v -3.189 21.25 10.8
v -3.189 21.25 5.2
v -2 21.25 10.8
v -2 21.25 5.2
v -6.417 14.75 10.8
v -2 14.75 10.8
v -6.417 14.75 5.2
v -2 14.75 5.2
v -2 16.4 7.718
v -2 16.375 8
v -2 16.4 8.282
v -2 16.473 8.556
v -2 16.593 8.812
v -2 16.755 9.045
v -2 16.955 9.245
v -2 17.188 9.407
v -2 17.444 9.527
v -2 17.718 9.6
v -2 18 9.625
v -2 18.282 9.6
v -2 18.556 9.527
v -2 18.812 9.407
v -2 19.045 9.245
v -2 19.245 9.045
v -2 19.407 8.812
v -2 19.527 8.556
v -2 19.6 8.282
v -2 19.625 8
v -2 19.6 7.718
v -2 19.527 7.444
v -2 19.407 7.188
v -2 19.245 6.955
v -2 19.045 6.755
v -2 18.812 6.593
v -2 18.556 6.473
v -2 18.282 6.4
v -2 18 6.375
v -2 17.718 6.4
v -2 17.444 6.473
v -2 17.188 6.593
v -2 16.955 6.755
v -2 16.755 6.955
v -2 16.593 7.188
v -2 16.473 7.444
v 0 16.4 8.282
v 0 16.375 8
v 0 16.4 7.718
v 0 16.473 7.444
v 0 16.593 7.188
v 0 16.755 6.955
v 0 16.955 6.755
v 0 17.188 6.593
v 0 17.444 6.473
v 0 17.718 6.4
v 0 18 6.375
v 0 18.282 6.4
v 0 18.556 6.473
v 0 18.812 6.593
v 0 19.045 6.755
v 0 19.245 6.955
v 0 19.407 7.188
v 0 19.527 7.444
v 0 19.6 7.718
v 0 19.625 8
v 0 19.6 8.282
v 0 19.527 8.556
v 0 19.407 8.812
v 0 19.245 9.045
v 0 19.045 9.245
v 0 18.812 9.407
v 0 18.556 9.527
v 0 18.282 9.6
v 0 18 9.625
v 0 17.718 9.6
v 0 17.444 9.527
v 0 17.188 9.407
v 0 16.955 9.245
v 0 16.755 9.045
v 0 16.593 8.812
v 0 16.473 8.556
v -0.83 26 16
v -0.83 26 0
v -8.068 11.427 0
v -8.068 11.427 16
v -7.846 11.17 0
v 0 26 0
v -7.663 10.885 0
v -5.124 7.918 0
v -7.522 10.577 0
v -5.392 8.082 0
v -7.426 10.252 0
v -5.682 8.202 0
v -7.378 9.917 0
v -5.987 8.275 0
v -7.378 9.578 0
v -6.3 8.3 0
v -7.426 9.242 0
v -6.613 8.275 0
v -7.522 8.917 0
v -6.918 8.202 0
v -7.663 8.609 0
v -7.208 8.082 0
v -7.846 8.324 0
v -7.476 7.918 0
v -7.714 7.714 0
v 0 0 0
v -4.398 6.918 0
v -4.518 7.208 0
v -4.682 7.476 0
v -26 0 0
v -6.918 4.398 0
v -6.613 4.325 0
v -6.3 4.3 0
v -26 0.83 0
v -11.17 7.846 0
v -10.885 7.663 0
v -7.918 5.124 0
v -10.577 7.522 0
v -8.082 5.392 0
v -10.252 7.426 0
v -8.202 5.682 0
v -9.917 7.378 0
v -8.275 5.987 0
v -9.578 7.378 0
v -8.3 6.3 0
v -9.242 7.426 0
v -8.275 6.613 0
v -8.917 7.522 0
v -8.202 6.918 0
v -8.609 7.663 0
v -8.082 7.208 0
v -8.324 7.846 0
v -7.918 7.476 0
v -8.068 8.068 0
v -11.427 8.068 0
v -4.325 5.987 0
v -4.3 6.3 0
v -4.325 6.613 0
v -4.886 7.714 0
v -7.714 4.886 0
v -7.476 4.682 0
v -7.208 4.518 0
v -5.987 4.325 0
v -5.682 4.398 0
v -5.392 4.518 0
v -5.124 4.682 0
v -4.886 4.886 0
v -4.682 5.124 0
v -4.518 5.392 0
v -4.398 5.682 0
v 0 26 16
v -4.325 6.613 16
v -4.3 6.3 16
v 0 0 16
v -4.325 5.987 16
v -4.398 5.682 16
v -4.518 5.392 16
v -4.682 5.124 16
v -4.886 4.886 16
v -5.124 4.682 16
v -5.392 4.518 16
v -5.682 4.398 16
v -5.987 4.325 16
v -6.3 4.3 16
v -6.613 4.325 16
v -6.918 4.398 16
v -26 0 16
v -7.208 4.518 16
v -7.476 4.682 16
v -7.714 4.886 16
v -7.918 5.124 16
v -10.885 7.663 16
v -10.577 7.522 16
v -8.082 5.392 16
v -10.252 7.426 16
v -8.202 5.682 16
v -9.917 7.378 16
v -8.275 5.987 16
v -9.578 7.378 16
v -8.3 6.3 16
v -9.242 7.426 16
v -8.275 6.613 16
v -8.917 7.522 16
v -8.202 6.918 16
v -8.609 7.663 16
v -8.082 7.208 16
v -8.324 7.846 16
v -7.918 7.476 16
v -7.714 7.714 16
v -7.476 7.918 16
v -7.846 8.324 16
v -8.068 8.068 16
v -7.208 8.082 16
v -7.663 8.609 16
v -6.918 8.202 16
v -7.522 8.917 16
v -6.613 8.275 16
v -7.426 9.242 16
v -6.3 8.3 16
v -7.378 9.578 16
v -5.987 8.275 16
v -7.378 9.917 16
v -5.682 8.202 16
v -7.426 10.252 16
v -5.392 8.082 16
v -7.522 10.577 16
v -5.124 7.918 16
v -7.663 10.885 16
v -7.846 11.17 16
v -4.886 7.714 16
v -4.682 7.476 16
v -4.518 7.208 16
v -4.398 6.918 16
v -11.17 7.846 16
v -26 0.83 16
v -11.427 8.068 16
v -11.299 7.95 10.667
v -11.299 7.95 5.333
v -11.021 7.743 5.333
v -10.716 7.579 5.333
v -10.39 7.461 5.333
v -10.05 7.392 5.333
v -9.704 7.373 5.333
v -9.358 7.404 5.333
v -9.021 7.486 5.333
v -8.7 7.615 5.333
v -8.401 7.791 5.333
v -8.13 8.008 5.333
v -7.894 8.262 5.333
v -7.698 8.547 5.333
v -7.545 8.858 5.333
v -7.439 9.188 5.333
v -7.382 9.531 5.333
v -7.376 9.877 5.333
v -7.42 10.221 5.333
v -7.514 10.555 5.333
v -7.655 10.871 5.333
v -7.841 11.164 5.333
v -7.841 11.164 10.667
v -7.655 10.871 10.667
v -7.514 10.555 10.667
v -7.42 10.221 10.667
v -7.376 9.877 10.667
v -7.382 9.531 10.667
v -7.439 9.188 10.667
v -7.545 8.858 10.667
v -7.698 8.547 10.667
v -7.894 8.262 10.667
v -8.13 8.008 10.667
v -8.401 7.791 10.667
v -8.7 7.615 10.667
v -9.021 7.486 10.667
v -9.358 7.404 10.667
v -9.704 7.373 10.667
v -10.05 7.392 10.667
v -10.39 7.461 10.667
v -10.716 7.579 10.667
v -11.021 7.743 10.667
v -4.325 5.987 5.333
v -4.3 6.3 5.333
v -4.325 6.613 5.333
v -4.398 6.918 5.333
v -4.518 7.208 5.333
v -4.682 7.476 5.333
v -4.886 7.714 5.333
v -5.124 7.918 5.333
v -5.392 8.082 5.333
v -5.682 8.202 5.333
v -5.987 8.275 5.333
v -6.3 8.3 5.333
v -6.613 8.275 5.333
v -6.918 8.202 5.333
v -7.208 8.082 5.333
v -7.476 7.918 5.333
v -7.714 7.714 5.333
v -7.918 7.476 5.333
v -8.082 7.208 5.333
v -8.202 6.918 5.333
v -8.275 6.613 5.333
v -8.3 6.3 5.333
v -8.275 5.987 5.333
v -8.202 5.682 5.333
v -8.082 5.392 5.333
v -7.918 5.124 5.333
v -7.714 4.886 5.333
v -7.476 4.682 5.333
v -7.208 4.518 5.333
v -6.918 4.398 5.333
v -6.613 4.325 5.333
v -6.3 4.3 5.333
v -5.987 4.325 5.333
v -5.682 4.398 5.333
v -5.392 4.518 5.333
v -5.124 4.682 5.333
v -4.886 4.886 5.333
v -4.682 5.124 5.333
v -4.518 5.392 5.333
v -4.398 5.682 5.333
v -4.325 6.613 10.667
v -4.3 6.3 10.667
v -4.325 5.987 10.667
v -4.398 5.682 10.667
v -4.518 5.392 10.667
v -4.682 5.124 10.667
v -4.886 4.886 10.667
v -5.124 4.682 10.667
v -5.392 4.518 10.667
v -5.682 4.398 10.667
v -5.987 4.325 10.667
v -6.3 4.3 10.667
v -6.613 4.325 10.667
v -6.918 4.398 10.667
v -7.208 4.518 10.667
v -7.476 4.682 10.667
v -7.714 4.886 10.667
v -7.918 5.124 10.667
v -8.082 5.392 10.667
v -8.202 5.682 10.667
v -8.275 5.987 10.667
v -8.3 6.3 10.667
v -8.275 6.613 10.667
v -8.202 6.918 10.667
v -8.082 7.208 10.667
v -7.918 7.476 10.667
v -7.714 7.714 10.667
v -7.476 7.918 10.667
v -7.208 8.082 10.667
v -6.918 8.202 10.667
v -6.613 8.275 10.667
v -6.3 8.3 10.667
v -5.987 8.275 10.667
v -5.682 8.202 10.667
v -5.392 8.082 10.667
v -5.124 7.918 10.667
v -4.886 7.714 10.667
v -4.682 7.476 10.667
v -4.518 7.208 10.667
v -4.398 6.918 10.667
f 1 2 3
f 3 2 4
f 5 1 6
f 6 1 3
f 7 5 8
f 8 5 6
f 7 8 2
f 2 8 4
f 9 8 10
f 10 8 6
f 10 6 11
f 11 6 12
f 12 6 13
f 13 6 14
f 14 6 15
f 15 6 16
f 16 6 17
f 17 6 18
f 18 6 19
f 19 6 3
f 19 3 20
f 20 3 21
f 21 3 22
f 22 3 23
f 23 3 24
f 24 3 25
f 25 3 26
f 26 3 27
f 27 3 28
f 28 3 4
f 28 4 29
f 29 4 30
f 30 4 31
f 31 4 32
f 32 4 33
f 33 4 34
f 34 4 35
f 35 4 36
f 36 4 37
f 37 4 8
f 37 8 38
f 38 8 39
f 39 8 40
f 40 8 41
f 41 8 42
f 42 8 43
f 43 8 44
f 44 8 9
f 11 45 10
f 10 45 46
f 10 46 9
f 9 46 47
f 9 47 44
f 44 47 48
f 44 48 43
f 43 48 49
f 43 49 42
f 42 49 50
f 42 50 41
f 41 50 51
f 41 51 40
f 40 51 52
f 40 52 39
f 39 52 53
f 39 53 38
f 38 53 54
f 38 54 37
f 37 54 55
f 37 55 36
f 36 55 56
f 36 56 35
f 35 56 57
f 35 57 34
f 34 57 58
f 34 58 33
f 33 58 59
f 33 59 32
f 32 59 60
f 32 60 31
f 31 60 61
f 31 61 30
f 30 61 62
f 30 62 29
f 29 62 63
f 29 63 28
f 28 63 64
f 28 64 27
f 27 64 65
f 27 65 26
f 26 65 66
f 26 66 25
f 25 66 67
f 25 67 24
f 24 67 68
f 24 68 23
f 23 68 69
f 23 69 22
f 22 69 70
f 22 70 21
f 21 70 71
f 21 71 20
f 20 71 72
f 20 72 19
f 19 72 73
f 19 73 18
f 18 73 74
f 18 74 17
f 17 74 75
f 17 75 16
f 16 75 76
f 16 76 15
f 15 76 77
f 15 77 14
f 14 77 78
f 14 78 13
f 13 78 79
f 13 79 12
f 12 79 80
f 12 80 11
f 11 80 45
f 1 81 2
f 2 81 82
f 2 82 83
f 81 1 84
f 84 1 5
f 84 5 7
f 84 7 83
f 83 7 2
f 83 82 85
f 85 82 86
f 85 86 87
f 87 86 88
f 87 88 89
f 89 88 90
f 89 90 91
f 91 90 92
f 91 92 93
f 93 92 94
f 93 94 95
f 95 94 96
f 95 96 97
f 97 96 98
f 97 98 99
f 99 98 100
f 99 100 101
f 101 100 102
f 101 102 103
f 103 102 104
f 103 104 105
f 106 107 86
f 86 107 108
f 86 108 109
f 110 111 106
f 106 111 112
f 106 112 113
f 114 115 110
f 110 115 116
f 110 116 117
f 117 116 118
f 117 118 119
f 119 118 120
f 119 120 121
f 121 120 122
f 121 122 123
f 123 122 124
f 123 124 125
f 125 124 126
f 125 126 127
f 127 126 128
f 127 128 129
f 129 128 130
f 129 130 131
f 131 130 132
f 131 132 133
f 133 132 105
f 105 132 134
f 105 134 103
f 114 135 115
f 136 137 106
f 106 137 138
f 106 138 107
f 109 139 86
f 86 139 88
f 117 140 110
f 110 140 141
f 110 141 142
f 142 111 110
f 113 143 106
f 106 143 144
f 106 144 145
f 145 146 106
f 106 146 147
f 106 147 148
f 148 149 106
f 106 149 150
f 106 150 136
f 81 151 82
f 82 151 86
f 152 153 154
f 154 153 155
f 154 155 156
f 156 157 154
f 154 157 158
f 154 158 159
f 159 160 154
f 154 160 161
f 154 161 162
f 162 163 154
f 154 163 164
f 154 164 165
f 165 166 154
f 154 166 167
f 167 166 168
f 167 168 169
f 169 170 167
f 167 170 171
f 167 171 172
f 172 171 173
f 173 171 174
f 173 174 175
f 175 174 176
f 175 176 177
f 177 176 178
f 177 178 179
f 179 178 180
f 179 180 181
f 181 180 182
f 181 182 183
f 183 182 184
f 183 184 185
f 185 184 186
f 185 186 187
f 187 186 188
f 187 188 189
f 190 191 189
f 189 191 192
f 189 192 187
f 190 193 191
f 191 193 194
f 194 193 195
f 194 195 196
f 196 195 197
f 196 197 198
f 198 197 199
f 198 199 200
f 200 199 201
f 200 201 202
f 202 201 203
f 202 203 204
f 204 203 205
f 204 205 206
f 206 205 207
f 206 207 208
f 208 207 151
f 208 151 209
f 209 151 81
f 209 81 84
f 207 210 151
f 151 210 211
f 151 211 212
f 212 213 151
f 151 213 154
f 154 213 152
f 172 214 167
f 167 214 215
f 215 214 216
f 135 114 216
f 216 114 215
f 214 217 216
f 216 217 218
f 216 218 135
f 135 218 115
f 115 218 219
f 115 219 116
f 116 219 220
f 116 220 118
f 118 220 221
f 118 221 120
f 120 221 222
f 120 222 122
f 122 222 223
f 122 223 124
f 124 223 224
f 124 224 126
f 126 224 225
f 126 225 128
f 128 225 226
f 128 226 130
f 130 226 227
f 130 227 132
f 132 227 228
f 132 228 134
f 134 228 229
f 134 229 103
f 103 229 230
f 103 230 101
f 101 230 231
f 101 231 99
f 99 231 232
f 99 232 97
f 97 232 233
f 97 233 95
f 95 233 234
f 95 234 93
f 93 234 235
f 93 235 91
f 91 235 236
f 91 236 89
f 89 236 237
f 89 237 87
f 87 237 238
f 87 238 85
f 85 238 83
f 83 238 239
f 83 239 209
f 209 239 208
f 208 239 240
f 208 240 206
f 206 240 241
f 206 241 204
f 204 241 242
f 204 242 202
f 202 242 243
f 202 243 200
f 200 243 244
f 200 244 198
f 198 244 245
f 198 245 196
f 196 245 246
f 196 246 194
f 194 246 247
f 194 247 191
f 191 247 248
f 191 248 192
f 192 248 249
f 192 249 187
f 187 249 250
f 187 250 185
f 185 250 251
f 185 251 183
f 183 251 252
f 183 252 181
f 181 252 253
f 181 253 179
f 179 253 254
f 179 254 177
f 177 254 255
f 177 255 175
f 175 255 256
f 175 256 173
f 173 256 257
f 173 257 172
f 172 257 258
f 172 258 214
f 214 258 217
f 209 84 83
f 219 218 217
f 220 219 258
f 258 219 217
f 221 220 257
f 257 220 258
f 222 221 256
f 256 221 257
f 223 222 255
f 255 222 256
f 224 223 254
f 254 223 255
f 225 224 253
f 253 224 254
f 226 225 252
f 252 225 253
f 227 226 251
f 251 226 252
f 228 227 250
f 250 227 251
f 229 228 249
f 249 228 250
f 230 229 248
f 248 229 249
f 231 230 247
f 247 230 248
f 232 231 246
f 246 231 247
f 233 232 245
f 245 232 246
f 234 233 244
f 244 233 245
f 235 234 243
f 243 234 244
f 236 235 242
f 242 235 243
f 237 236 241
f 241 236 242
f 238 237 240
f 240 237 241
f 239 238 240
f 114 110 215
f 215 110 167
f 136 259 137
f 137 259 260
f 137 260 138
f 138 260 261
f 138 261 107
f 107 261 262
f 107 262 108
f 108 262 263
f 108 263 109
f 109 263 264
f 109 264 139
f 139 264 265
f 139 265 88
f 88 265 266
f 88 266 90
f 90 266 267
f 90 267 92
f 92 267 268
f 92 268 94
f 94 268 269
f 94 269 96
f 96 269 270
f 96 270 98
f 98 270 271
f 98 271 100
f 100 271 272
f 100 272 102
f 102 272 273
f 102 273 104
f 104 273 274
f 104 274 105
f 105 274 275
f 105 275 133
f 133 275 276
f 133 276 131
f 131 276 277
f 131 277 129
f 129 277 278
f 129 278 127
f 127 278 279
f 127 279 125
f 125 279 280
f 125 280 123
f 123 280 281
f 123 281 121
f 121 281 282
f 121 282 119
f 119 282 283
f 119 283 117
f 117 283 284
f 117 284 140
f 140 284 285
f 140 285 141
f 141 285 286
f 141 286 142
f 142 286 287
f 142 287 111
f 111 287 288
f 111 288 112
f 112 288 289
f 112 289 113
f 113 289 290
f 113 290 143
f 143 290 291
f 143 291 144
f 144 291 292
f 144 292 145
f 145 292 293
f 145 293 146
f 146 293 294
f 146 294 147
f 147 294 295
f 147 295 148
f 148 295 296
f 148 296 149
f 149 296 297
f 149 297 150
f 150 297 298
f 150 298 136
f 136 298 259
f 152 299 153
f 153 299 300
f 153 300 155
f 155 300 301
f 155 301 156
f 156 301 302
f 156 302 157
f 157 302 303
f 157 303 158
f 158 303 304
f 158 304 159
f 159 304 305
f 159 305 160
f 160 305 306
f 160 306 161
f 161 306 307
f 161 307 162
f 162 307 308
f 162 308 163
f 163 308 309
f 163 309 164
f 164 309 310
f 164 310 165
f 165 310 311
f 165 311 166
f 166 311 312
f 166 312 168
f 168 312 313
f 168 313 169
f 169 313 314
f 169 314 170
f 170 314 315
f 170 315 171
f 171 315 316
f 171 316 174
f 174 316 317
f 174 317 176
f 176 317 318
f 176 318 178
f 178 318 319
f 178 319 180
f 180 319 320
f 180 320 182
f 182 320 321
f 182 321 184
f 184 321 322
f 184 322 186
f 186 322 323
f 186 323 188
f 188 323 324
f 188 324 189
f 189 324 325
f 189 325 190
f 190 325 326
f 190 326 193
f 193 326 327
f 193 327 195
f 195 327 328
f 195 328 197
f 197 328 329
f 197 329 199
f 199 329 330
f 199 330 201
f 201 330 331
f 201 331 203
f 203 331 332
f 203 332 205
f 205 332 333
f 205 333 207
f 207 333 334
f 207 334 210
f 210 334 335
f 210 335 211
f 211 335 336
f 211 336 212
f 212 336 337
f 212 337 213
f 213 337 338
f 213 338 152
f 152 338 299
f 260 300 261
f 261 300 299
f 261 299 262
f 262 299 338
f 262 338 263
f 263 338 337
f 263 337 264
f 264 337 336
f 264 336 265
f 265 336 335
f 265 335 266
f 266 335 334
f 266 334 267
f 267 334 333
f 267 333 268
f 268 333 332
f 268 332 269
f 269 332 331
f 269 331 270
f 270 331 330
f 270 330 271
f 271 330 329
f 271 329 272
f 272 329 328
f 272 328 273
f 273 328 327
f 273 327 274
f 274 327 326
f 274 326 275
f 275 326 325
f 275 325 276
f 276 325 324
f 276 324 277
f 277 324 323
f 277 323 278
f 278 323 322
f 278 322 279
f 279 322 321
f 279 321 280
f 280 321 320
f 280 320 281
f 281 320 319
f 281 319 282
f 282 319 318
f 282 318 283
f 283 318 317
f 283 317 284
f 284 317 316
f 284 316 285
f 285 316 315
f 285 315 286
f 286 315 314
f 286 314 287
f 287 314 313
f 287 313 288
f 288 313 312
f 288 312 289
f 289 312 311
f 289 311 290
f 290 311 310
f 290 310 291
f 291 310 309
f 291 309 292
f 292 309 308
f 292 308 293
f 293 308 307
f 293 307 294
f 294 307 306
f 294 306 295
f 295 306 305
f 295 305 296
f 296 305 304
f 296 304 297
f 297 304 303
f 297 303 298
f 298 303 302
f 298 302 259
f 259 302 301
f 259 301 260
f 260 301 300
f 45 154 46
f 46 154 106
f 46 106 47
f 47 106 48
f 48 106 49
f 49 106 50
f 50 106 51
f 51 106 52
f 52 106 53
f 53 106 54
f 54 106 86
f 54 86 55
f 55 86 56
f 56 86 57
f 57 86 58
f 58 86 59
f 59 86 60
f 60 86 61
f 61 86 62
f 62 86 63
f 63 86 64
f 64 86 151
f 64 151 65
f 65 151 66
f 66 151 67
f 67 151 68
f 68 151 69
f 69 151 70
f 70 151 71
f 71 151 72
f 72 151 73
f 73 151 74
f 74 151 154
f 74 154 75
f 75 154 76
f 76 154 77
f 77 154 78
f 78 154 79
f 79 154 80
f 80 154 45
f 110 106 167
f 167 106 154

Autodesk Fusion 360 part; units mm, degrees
sketch "Sketch1" plane through (0, 0, 0) normal (0, 0, 1) x (1, 0, 0)
  line L0 (0, 0) -> (-118.5, 0) construction
  line L1 (-118.5, 0) -> (-118.5, 118.5) construction
  line L2 (-118.5, 118.5) -> (0, 118.5) construction
  line L3 (0, 118.5) -> (0, 0) construction
  line L4 (0, 0) -> (-26, 0)
  line L5 (-26, 0) -> (-26, 26)
  line L6 (-26, 26) -> (0, 26)
  line L7 (0, 26) -> (0, 0)
  dimension "d11" = 118.5
  dimension "d12" = 118.5
  dimension "d13" = 26
  dimension "d14" = 26
extrude "Extrude1" add sketch "Sketch1" along normal blind 16
sketch "Sketch2" plane through (0, 0, 16) normal (0, 0, 1) x (-1, 0, 0)
  line L0 (0, -26) -> (26, -26)
  line L1 (26, -26) -> (26, 0)
  line L2 (26, 0) -> (0, 0)
  line L3 (0, 0) -> (0, -26)
  circle A0 centre (6.3, -6.3) radius 2
  dimension "d17" = 4
  dimension "d18" = 6.3
  dimension "d19" = 6.3
extrude "Extrude2" cut sketch "Sketch2" against normal up to surface (16 mm away) contours A0
sketch "Sketch3" plane through (0, 0, 0) normal (0, 0, 1) x (1, 0, 0)
  line L0 (0, 0) -> (-118.5, 0) construction
  line L1 (-118.5, 0) -> (-118.5, 118.5) construction
  line L2 (-118.5, 118.5) -> (0, 118.5) construction
  line L3 (0, 118.5) -> (0, 0) construction
  line L4 (-118.5, 59.25) -> (0, 59.25) construction
  line L5 (-59.25, 118.5) -> (-59.25, 0) construction
  circle A0 centre (-59.25, 59.25) radius 66.5
  dimension "d22" = 118.5
  dimension "d23" = 118.5
  dimension "d24" = 133
extrude "Extrude3" cut sketch "Sketch3" along normal up to surface (16 mm away)
sketch "Sketch4" plane through (0, 0, 0) normal (0, 0, 1) x (1, 0, 0)
  line L0 (-8.0678, 11.4265) -> (-18.8511, 22.2099)
  arc A0 (-18.8511, 22.2099) -> (-22.2099, 18.8511) centre (-20.5305, 20.5305) ccw
  line L1 (-22.2099, 18.8511) -> (-11.4265, 8.0678)
  arc A1 (-11.4265, 8.0678) -> (-8.0678, 11.4265) centre (-9.7471, 9.7471) ccw
  line L2 (-8.0678, 8.0678) -> (-22.2099, 22.2099) construction
  circle A2 centre (-6.3, 6.3) radius 2
  dimension "d27" = 4.75
  dimension "d28" = 2.5
extrude "Extrude4" cut sketch "Sketch4" along normal up to surface (16 mm away) contours L0 A0 L1 A1
sketch "Sketch5" plane through (0, 0, 0) normal (0, 0, 1) x (1, 0, 0)
sketch "Sketch6" plane through (0, 0, 16) normal (0, 0, 1) x (-1, 0, 0)
  circle A0 centre (6.3, -6.3) radius 2
  line L0 (10.578, -13.9368) -> (8.0678, -11.4265)
  arc A1 (11.4265, -8.0678) -> (8.0678, -11.4265) centre (9.7471, -9.7471) ccw
  line L1 (11.4265, -8.0678) -> (13.9368, -10.578)
  arc A2 (26, -1.6593) -> (13.9368, -10.578) centre (59.25, -59.25) ccw
  line L2 (26, -1.6593) -> (26, 0)
  line L3 (26, 0) -> (0, 0)
  line L4 (0, 0) -> (0, -26)
  line L5 (0, -26) -> (1.6593, -26)
  arc A3 (10.578, -13.9368) -> (1.6593, -26) centre (59.25, -59.25) ccw
  line L6 (11.4265, -8.0678) -> (26, -0.8297)
  line L7 (26, -1.6593) -> (13.9368, -10.578)
  line L8 (13.9368, -10.578) -> (11.4265, -8.0678)
  line L9 (26, -1.6593) -> (26, -0.8297)
extrude "Extrude5" cut sketch "Sketch6" against normal up to surface (16 mm away) contours L1 A2 L2 L6 L8 L9
sketch "Sketch7" plane through (0, 0, 16) normal (0, 0, 1) x (-1, 0, 0)
  line L0 (11.4265, -8.0678) -> (26, -0.8297)
  line L1 (26, -0.8297) -> (26, 0)
  line L2 (26, 0) -> (0, 0)
  line L3 (0, 0) -> (0, -26)
  line L4 (0, -26) -> (1.6593, -26)
  arc A0 (10.578, -13.9368) -> (1.6593, -26) centre (59.25, -59.25) ccw
  line L5 (10.578, -13.9368) -> (8.0678, -11.4265)
  arc A1 (11.4265, -8.0678) -> (8.0678, -11.4265) centre (9.7471, -9.7471) ccw
  circle A2 centre (6.3, -6.3) radius 2
  line L6 (8.0678, -11.4265) -> (0.8297, -26)
  line L7 (0.8297, -26) -> (1.6593, -26)
  line L8 (1.6593, -26) -> (10.578, -13.9368)
  line L9 (10.578, -13.9368) -> (8.0678, -11.4265)
extrude "Extrude6" cut sketch "Sketch7" against normal up to surface (16 mm away) contours L4 A0 L5 L6 L7 L9
sketch "Sketch8" plane through (0, 0, 0) normal (1, 0, 0) x (0, 1, 0)
  line L0 (0, 0) -> (26, 0)
  line L1 (26, 0) -> (26, 16)
  line L2 (26, 16) -> (0, 16)
  line L3 (0, 16) -> (0, 0)
  circle A0 centre (18, 8) radius 1.625
  dimension "d39" = 3.25
  dimension "d40" = 18
extrude "Extrude7" cut sketch "Sketch8" along normal up to surface contours A0 end surface through (-8.0678, 11.4265, 16) normal (-0.895619, 0.444821, 0) offset 0
sketch "Sketch9" plane through (0, 0, 0) normal (1, 0, 0) x (0, 1, 0)
  circle A0 centre (18, 8) radius 1.625
  line L0 (0, 0) -> (26, 0)
  line L1 (26, 0) -> (26, 16)
  line L2 (26, 16) -> (0, 16)
  line L3 (0, 16) -> (0, 0)
  line L4 (21.25, 5.2) -> (14.75, 5.2)
  line L5 (14.75, 5.2) -> (14.75, 10.8)
  line L6 (14.75, 10.8) -> (21.25, 10.8)
  line L7 (21.25, 10.8) -> (21.25, 5.2)
  line L8 (21.25, 5.2) -> (14.75, 10.8) construction
  line L9 (14.75, 5.2) -> (21.25, 10.8) construction
  point P0 (18, 8)
  dimension "d46" = 6.5
  dimension "d47" = 5.6
extrude "Extrude8" cut sketch "Sketch9" along normal up to surface from surface at -2 contours L4 L5 L6 L7 end surface through (-8.0678, 11.4265, 16) normal (-0.895619, 0.444821, 0) offset 0
equation "fan_mount_hole_diameter = 4 mm"
equation "fan_mount_length = 26 mm"
equation "fan_mount_width = 16 mm"
equation "fan_mount_height = 26 mm"
equation "fan_inner_diameter = 115.2 mm"
equation "fan_mount_hole_edge_offset = 4.3 mm + ( fan_mount_hole_diameter / 2 )"
equation "fan_outer_mount_strut_width = 4.75 mm"
equation "fan_cove_radius = 66.5 mm"
equation "fan_mount_hole_cove_offset = 6 mm"
equation "fan_overall_width = 118.5 mm"
equation "d11 = fan_overall_width"
equation "d12 = fan_overall_width"
equation "d13 = fan_mount_length"
equation "d14 = fan_mount_height"
equation "d15 = fan_mount_width"
equation "d17 = fan_mount_hole_diameter"
equation "d18 = fan_mount_hole_edge_offset"
equation "d19 = fan_mount_hole_edge_offset"
equation "d22 = fan_overall_width"
equation "d23 = fan_overall_width"
equation "d24 = 2 * fan_cove_radius"
equation "d27 = fan_outer_mount_strut_width"
equation "d28 = ( fan_mount_hole_diameter / 2 ) + fan_strut_hole_offset"
equation "fan_strut_hole_offset = 0.5 mm"
equation "sharp_corner_fillet = 2 mm"
equation "bottom_hole_diameter = 3.25 mm"
equation "bottom_hole_edge_offset = 18 mm"
equation "d39 = bottom_hole_diameter"
equation "d40 = bottom_hole_edge_offset"
equation "bottom_screw_mount_nut_holder_width = 5.6 mm"
equation "bottom_screw_mount_nut_holder_length = 6.5 mm"
equation "bottom_screw_mount_nut_holder_bottom_offset = 2 mm"
equation "d46 = bottom_screw_mount_nut_holder_length"
equation "d47 = bottom_screw_mount_nut_holder_width"
equation "d48 = -bottom_screw_mount_nut_holder_bottom_offset"
